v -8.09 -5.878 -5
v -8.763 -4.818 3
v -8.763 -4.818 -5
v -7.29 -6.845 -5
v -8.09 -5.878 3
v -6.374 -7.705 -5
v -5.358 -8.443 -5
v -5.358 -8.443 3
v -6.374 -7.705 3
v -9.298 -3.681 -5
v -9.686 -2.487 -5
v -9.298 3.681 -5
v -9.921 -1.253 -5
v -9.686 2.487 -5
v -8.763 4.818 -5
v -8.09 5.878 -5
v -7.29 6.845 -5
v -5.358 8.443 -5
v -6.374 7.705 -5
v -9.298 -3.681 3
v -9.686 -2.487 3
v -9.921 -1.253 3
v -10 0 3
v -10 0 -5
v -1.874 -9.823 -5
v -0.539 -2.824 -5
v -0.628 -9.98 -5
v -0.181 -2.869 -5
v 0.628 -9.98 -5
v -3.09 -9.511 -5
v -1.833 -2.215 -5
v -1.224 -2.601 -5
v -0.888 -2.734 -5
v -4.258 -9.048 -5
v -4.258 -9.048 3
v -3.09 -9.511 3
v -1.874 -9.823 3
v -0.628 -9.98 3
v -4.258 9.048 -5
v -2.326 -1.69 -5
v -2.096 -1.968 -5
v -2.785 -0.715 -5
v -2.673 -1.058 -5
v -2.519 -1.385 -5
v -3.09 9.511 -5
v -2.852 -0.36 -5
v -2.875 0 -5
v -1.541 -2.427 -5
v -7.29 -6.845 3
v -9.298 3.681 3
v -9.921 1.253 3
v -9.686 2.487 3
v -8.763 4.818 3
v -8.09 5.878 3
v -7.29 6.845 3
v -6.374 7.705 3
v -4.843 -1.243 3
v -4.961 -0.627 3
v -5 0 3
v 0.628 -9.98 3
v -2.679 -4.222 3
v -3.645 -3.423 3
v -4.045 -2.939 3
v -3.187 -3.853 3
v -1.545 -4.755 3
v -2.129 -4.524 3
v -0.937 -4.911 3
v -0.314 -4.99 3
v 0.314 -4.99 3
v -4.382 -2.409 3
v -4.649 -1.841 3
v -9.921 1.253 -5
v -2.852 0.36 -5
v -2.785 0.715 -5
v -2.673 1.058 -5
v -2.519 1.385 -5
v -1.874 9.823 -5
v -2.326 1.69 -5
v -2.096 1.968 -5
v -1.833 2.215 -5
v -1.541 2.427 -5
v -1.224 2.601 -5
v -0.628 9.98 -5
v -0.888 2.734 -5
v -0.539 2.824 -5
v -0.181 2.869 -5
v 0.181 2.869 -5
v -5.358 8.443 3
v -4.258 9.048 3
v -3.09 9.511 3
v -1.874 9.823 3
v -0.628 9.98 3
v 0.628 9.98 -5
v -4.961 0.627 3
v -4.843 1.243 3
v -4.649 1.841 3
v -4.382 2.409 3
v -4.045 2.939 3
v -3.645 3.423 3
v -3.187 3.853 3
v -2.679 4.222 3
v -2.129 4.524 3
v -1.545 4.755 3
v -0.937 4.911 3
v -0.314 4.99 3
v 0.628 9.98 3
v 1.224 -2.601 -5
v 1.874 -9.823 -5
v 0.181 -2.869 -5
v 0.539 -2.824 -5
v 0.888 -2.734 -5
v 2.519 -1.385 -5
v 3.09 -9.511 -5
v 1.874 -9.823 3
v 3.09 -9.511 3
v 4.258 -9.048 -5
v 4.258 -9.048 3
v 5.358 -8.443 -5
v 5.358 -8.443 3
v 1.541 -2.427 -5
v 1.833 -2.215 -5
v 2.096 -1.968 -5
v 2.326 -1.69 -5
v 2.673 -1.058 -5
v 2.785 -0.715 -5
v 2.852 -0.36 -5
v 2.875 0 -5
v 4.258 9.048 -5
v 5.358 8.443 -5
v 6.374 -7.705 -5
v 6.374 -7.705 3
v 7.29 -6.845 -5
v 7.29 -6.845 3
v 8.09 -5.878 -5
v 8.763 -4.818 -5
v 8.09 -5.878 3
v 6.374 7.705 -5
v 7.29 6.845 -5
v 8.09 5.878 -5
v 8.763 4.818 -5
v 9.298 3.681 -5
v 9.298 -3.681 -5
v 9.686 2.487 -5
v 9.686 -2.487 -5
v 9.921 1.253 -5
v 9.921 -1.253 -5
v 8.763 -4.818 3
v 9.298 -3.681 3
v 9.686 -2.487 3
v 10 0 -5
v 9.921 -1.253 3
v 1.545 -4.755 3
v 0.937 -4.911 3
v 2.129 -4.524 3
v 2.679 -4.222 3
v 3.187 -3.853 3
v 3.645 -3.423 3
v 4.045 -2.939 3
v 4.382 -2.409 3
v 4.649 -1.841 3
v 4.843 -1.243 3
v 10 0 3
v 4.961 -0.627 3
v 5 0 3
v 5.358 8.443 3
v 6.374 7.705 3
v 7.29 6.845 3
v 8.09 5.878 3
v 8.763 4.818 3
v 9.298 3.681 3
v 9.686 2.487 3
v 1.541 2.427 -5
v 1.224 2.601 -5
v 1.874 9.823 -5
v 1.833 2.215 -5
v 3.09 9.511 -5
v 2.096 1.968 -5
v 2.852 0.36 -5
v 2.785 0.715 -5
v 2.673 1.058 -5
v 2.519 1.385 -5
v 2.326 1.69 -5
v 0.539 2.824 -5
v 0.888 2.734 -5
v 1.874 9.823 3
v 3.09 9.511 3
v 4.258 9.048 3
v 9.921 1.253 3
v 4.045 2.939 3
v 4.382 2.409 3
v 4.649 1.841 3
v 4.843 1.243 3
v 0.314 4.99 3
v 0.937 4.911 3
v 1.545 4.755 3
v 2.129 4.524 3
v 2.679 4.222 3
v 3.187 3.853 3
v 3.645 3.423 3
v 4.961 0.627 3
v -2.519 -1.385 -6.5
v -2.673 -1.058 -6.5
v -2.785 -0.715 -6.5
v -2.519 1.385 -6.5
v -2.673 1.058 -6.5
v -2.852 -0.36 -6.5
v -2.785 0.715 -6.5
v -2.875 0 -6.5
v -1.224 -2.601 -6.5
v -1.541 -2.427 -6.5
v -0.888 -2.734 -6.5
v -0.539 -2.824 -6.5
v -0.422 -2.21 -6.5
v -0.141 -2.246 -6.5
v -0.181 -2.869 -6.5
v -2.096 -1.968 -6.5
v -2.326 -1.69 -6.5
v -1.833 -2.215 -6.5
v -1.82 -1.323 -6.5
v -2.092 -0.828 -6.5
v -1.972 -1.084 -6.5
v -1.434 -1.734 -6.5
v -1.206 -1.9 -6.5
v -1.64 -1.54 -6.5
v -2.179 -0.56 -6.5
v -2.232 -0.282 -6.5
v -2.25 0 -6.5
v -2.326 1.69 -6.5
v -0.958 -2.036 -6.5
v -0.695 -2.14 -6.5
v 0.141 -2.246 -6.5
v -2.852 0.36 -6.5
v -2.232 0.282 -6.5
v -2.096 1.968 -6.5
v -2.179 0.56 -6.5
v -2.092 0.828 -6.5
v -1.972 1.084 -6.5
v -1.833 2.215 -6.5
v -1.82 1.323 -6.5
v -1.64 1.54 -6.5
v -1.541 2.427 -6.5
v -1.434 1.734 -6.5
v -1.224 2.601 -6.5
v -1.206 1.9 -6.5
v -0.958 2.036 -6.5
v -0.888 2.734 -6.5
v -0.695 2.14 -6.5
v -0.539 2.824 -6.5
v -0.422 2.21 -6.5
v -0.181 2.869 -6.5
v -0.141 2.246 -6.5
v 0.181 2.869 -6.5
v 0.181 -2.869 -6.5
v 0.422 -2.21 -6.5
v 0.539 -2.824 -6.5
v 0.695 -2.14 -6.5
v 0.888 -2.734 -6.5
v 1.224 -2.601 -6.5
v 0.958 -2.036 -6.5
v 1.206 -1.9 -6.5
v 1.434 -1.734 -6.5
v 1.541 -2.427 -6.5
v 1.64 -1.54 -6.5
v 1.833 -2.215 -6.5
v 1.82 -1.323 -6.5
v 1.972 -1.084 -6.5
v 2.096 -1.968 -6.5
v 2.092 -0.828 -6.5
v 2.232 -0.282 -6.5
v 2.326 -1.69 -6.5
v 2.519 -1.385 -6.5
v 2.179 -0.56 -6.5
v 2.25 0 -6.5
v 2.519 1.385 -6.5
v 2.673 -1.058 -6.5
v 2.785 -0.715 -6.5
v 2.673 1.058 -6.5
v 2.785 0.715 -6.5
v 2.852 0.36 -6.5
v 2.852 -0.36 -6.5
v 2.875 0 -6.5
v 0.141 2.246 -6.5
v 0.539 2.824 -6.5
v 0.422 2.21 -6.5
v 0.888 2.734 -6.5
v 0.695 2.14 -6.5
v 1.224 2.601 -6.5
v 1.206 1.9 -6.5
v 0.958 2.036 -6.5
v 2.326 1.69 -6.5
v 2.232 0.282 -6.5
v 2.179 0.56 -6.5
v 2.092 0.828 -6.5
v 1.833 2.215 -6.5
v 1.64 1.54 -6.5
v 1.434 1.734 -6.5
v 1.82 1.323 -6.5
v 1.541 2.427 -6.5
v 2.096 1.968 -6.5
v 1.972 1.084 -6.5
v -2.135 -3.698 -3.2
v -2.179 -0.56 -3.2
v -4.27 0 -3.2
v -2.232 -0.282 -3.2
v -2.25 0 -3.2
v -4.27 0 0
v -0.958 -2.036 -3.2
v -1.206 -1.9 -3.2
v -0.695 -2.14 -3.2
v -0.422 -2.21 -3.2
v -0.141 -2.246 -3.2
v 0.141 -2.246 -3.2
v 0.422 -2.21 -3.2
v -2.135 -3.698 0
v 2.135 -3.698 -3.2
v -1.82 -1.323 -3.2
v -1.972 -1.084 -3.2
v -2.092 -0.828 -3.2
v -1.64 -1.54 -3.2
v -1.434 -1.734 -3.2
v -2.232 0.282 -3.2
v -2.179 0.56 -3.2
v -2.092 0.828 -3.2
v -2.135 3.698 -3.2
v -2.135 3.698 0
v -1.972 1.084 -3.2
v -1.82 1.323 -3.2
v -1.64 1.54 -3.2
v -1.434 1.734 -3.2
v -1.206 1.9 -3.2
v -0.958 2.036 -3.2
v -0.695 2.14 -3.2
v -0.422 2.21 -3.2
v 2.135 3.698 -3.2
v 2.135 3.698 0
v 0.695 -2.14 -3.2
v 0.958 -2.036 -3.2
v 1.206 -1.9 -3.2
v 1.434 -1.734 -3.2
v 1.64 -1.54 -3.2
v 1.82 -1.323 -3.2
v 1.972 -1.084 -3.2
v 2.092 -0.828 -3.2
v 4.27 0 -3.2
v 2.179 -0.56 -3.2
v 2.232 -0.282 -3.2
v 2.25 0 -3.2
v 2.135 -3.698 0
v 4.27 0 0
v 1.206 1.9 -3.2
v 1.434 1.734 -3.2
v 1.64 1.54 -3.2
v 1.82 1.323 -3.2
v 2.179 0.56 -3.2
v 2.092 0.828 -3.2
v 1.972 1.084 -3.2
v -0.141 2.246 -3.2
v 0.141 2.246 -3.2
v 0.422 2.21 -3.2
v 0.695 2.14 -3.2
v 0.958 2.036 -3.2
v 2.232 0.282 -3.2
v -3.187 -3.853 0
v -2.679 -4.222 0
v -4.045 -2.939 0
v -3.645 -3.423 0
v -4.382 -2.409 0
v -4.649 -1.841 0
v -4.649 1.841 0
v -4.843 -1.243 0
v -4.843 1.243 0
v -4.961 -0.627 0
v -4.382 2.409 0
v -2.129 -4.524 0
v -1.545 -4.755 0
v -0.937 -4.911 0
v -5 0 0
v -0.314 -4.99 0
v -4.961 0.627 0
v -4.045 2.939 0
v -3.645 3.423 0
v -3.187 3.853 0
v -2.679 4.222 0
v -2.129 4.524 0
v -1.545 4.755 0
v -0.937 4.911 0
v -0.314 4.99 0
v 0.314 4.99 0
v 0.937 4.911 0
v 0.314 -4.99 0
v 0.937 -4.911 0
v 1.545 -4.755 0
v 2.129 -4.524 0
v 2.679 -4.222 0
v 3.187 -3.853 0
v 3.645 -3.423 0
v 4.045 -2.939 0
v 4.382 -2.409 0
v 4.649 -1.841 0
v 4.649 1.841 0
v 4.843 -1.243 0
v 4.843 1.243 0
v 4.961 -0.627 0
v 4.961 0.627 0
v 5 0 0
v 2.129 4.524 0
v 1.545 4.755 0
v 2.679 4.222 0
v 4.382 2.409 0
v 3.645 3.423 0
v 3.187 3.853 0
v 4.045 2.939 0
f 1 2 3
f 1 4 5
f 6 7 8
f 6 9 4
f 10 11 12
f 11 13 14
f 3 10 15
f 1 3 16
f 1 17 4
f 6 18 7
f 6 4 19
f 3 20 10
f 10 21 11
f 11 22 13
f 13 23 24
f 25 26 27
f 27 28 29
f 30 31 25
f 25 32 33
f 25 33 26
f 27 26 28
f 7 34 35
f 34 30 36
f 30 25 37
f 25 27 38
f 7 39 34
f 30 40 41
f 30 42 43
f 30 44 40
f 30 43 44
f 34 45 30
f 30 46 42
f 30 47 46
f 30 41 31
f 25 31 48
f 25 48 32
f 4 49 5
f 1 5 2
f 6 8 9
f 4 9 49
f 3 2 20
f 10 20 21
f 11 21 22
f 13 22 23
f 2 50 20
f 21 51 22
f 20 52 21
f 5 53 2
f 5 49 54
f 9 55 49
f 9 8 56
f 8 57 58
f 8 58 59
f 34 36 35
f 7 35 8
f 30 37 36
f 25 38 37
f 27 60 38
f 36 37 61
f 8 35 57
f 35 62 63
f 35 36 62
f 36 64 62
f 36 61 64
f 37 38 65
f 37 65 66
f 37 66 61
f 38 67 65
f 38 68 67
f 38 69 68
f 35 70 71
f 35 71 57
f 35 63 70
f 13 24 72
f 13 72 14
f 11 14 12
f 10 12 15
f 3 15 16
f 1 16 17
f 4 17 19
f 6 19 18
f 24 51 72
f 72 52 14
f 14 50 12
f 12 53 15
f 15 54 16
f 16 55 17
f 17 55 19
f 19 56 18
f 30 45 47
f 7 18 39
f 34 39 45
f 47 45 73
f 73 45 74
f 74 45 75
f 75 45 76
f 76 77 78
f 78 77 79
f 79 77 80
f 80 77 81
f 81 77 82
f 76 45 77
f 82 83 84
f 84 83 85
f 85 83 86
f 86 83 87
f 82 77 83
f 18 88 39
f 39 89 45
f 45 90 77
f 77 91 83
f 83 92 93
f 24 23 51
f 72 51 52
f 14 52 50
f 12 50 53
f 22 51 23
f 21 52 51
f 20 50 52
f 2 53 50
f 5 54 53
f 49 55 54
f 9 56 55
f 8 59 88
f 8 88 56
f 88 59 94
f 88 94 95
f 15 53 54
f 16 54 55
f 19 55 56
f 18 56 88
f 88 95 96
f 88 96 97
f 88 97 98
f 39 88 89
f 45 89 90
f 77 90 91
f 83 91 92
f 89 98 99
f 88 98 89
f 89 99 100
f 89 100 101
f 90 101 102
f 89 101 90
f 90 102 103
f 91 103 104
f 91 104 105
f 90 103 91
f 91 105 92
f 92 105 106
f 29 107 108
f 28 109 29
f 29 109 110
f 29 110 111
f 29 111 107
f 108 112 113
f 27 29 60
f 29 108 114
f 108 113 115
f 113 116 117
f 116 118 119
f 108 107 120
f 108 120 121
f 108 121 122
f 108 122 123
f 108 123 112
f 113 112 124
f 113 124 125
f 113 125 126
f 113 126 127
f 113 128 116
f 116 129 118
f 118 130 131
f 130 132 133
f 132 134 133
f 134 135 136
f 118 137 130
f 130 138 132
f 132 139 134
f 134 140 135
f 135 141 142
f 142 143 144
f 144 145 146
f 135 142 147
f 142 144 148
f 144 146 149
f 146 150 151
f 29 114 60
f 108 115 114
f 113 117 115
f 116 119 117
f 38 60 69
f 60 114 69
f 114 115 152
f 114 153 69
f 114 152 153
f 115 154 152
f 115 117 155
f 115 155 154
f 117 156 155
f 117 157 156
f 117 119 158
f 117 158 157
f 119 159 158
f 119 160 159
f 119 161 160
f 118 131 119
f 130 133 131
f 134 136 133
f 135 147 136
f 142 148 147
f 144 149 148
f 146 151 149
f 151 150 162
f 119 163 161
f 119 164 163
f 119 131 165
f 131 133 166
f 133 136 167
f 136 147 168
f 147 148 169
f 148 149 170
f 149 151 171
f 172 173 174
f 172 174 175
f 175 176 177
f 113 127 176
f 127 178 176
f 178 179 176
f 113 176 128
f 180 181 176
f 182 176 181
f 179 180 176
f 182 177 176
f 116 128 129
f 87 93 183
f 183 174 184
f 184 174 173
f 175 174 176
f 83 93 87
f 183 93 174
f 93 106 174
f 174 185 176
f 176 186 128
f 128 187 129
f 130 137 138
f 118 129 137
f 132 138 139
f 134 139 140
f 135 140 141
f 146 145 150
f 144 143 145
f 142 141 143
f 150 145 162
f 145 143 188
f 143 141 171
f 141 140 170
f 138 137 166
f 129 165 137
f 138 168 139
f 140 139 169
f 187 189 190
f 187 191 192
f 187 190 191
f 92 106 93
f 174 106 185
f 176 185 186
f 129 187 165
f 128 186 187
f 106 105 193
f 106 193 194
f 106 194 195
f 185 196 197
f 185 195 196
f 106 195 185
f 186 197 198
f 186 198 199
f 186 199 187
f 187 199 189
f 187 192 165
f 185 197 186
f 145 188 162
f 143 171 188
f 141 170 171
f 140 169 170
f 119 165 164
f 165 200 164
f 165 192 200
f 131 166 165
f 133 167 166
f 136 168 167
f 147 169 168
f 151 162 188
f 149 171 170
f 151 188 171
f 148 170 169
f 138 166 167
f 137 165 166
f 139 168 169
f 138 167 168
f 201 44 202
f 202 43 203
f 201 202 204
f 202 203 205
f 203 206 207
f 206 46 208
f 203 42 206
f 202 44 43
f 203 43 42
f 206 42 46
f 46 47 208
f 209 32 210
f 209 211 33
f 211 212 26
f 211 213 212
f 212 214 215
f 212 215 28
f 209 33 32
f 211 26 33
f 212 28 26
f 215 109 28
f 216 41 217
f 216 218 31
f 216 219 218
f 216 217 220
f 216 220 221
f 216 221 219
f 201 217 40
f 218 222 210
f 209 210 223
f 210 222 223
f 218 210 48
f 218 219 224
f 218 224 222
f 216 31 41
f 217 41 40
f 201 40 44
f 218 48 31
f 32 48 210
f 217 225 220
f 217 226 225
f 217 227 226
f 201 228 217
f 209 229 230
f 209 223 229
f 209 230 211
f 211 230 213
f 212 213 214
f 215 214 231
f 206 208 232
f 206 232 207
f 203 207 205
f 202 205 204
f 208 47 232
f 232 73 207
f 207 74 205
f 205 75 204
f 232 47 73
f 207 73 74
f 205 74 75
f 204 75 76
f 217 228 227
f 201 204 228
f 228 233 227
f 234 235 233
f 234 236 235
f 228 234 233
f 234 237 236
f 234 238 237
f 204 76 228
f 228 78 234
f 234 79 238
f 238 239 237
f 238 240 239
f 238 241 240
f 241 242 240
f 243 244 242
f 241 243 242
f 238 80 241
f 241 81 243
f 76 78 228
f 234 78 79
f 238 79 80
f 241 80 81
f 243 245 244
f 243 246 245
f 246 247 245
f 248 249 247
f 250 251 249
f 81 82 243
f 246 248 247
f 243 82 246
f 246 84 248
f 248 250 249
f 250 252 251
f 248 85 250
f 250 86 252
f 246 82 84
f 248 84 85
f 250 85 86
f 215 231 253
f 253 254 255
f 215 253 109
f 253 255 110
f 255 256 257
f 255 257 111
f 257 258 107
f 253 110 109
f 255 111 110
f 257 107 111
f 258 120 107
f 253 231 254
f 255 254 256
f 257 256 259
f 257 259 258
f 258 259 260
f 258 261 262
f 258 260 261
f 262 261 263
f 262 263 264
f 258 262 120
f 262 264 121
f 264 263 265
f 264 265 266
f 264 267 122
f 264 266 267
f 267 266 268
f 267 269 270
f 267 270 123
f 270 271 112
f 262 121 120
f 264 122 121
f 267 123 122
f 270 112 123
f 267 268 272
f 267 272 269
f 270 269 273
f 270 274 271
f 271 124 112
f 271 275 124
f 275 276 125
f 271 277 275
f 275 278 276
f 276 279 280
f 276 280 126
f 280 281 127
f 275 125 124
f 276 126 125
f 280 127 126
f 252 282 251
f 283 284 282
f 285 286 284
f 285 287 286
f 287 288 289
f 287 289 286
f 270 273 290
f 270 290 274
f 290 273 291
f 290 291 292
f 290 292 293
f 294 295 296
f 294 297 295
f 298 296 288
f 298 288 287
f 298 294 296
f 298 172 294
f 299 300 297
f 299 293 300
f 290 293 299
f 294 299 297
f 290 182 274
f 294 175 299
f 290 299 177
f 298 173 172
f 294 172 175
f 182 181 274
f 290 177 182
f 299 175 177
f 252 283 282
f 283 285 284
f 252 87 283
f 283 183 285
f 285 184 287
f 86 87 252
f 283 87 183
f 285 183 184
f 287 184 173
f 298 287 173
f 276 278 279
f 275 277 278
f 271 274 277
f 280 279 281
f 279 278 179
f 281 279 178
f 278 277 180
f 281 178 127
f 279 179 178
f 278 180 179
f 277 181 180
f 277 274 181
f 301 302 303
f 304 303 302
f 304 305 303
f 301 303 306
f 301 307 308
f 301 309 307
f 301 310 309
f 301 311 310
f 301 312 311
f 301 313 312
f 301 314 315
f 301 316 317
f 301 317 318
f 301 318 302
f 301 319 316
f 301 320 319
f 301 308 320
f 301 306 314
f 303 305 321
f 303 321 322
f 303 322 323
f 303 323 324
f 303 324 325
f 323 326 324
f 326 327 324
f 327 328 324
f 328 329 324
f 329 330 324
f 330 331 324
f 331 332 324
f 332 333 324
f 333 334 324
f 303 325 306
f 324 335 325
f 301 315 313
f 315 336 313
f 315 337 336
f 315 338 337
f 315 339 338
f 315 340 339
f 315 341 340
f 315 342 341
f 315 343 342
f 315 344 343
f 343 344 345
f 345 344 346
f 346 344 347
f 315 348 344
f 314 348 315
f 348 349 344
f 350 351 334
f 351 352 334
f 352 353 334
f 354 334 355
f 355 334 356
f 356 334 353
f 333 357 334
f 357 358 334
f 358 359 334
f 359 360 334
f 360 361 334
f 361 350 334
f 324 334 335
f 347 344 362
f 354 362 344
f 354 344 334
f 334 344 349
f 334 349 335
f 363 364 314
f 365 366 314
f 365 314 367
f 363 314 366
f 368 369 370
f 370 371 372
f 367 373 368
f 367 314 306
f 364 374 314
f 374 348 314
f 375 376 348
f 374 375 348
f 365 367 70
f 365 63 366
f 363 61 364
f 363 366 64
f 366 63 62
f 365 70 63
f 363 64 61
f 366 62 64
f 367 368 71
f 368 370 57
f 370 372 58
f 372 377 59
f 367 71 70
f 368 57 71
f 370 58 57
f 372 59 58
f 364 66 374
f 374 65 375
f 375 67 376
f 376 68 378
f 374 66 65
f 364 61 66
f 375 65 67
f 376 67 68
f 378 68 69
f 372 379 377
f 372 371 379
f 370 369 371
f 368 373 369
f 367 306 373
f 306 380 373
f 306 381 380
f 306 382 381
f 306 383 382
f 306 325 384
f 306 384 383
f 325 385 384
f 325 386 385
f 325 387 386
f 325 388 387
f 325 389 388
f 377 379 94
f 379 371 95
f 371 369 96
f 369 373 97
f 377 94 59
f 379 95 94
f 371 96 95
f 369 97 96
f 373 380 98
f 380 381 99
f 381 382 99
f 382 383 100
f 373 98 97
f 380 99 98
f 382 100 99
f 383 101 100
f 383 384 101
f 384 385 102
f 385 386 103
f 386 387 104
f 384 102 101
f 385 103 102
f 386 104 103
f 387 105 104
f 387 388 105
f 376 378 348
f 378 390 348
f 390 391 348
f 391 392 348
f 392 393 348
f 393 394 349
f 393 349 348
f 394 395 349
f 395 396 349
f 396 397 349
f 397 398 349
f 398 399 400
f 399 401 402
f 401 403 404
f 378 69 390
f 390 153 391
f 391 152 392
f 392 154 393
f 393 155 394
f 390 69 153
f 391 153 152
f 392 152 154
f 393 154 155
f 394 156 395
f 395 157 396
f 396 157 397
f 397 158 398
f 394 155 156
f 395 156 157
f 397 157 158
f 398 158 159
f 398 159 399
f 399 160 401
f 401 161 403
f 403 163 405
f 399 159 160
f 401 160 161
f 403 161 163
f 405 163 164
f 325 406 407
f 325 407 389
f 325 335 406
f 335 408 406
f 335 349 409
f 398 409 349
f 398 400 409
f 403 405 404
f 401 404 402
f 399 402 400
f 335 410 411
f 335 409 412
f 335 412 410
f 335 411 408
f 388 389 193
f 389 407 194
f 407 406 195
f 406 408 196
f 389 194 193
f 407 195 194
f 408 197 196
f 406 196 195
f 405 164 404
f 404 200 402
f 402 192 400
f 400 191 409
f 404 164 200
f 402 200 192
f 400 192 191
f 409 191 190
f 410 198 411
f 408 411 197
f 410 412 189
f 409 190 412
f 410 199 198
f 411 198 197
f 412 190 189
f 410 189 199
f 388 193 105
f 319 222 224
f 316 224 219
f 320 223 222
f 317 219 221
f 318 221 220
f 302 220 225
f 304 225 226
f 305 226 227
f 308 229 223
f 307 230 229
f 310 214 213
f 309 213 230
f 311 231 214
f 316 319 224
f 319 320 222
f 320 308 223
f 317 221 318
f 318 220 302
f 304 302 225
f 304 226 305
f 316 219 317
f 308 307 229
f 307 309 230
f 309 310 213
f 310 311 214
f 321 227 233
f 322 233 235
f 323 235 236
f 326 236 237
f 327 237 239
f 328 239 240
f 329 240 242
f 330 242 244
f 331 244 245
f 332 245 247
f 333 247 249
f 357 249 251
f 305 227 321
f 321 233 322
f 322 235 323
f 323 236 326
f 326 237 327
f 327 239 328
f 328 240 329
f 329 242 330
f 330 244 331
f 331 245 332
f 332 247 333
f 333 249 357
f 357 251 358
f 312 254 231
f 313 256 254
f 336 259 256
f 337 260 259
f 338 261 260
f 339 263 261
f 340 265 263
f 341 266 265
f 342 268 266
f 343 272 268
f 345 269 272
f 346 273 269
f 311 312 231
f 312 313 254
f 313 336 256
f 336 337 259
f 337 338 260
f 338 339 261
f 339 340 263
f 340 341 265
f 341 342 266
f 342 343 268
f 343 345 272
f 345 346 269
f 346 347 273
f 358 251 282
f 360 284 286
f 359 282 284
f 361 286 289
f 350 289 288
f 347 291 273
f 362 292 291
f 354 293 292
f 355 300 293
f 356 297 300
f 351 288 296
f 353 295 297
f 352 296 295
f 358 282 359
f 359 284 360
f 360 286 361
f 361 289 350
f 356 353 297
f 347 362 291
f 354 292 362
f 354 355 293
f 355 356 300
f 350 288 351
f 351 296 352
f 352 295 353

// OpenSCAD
$fn = 50;

difference() {
	union() {
		translate(v = [0, 0, -5.0]) {
			cylinder(h = 8.0, r = 10.0);
		}
		#translate(v = [0, 0, -6.5]) {
			cylinder(h = 6.5, r = 2.875);
		}
	}
	union() {
		translate(v = [0, 0, 0]) {
			rotate(a = [0, 0, 0]) {
				difference() {
					union() {
						translate(v = [0, 0, -3.2]) {
							linear_extrude(height = 3.2) {
								polygon(points = [[4.2698, 0.0], [2.1349000000000005, 3.697755269078796], [-2.134899999999999, 3.6977552690787965], [-4.2698, 5.228996902999369e-16], [-2.134900000000002, -3.6977552690787956], [2.1348999999999974, -3.697755269078798]]);
							}
						}
					}
					union();
				}
			}
		}
		#cylinder(h = 3, r = 5.0);
		#translate(v = [0, 0, -100.0]) {
			cylinder(h = 200, r = 2.25);
		}
	}
}
